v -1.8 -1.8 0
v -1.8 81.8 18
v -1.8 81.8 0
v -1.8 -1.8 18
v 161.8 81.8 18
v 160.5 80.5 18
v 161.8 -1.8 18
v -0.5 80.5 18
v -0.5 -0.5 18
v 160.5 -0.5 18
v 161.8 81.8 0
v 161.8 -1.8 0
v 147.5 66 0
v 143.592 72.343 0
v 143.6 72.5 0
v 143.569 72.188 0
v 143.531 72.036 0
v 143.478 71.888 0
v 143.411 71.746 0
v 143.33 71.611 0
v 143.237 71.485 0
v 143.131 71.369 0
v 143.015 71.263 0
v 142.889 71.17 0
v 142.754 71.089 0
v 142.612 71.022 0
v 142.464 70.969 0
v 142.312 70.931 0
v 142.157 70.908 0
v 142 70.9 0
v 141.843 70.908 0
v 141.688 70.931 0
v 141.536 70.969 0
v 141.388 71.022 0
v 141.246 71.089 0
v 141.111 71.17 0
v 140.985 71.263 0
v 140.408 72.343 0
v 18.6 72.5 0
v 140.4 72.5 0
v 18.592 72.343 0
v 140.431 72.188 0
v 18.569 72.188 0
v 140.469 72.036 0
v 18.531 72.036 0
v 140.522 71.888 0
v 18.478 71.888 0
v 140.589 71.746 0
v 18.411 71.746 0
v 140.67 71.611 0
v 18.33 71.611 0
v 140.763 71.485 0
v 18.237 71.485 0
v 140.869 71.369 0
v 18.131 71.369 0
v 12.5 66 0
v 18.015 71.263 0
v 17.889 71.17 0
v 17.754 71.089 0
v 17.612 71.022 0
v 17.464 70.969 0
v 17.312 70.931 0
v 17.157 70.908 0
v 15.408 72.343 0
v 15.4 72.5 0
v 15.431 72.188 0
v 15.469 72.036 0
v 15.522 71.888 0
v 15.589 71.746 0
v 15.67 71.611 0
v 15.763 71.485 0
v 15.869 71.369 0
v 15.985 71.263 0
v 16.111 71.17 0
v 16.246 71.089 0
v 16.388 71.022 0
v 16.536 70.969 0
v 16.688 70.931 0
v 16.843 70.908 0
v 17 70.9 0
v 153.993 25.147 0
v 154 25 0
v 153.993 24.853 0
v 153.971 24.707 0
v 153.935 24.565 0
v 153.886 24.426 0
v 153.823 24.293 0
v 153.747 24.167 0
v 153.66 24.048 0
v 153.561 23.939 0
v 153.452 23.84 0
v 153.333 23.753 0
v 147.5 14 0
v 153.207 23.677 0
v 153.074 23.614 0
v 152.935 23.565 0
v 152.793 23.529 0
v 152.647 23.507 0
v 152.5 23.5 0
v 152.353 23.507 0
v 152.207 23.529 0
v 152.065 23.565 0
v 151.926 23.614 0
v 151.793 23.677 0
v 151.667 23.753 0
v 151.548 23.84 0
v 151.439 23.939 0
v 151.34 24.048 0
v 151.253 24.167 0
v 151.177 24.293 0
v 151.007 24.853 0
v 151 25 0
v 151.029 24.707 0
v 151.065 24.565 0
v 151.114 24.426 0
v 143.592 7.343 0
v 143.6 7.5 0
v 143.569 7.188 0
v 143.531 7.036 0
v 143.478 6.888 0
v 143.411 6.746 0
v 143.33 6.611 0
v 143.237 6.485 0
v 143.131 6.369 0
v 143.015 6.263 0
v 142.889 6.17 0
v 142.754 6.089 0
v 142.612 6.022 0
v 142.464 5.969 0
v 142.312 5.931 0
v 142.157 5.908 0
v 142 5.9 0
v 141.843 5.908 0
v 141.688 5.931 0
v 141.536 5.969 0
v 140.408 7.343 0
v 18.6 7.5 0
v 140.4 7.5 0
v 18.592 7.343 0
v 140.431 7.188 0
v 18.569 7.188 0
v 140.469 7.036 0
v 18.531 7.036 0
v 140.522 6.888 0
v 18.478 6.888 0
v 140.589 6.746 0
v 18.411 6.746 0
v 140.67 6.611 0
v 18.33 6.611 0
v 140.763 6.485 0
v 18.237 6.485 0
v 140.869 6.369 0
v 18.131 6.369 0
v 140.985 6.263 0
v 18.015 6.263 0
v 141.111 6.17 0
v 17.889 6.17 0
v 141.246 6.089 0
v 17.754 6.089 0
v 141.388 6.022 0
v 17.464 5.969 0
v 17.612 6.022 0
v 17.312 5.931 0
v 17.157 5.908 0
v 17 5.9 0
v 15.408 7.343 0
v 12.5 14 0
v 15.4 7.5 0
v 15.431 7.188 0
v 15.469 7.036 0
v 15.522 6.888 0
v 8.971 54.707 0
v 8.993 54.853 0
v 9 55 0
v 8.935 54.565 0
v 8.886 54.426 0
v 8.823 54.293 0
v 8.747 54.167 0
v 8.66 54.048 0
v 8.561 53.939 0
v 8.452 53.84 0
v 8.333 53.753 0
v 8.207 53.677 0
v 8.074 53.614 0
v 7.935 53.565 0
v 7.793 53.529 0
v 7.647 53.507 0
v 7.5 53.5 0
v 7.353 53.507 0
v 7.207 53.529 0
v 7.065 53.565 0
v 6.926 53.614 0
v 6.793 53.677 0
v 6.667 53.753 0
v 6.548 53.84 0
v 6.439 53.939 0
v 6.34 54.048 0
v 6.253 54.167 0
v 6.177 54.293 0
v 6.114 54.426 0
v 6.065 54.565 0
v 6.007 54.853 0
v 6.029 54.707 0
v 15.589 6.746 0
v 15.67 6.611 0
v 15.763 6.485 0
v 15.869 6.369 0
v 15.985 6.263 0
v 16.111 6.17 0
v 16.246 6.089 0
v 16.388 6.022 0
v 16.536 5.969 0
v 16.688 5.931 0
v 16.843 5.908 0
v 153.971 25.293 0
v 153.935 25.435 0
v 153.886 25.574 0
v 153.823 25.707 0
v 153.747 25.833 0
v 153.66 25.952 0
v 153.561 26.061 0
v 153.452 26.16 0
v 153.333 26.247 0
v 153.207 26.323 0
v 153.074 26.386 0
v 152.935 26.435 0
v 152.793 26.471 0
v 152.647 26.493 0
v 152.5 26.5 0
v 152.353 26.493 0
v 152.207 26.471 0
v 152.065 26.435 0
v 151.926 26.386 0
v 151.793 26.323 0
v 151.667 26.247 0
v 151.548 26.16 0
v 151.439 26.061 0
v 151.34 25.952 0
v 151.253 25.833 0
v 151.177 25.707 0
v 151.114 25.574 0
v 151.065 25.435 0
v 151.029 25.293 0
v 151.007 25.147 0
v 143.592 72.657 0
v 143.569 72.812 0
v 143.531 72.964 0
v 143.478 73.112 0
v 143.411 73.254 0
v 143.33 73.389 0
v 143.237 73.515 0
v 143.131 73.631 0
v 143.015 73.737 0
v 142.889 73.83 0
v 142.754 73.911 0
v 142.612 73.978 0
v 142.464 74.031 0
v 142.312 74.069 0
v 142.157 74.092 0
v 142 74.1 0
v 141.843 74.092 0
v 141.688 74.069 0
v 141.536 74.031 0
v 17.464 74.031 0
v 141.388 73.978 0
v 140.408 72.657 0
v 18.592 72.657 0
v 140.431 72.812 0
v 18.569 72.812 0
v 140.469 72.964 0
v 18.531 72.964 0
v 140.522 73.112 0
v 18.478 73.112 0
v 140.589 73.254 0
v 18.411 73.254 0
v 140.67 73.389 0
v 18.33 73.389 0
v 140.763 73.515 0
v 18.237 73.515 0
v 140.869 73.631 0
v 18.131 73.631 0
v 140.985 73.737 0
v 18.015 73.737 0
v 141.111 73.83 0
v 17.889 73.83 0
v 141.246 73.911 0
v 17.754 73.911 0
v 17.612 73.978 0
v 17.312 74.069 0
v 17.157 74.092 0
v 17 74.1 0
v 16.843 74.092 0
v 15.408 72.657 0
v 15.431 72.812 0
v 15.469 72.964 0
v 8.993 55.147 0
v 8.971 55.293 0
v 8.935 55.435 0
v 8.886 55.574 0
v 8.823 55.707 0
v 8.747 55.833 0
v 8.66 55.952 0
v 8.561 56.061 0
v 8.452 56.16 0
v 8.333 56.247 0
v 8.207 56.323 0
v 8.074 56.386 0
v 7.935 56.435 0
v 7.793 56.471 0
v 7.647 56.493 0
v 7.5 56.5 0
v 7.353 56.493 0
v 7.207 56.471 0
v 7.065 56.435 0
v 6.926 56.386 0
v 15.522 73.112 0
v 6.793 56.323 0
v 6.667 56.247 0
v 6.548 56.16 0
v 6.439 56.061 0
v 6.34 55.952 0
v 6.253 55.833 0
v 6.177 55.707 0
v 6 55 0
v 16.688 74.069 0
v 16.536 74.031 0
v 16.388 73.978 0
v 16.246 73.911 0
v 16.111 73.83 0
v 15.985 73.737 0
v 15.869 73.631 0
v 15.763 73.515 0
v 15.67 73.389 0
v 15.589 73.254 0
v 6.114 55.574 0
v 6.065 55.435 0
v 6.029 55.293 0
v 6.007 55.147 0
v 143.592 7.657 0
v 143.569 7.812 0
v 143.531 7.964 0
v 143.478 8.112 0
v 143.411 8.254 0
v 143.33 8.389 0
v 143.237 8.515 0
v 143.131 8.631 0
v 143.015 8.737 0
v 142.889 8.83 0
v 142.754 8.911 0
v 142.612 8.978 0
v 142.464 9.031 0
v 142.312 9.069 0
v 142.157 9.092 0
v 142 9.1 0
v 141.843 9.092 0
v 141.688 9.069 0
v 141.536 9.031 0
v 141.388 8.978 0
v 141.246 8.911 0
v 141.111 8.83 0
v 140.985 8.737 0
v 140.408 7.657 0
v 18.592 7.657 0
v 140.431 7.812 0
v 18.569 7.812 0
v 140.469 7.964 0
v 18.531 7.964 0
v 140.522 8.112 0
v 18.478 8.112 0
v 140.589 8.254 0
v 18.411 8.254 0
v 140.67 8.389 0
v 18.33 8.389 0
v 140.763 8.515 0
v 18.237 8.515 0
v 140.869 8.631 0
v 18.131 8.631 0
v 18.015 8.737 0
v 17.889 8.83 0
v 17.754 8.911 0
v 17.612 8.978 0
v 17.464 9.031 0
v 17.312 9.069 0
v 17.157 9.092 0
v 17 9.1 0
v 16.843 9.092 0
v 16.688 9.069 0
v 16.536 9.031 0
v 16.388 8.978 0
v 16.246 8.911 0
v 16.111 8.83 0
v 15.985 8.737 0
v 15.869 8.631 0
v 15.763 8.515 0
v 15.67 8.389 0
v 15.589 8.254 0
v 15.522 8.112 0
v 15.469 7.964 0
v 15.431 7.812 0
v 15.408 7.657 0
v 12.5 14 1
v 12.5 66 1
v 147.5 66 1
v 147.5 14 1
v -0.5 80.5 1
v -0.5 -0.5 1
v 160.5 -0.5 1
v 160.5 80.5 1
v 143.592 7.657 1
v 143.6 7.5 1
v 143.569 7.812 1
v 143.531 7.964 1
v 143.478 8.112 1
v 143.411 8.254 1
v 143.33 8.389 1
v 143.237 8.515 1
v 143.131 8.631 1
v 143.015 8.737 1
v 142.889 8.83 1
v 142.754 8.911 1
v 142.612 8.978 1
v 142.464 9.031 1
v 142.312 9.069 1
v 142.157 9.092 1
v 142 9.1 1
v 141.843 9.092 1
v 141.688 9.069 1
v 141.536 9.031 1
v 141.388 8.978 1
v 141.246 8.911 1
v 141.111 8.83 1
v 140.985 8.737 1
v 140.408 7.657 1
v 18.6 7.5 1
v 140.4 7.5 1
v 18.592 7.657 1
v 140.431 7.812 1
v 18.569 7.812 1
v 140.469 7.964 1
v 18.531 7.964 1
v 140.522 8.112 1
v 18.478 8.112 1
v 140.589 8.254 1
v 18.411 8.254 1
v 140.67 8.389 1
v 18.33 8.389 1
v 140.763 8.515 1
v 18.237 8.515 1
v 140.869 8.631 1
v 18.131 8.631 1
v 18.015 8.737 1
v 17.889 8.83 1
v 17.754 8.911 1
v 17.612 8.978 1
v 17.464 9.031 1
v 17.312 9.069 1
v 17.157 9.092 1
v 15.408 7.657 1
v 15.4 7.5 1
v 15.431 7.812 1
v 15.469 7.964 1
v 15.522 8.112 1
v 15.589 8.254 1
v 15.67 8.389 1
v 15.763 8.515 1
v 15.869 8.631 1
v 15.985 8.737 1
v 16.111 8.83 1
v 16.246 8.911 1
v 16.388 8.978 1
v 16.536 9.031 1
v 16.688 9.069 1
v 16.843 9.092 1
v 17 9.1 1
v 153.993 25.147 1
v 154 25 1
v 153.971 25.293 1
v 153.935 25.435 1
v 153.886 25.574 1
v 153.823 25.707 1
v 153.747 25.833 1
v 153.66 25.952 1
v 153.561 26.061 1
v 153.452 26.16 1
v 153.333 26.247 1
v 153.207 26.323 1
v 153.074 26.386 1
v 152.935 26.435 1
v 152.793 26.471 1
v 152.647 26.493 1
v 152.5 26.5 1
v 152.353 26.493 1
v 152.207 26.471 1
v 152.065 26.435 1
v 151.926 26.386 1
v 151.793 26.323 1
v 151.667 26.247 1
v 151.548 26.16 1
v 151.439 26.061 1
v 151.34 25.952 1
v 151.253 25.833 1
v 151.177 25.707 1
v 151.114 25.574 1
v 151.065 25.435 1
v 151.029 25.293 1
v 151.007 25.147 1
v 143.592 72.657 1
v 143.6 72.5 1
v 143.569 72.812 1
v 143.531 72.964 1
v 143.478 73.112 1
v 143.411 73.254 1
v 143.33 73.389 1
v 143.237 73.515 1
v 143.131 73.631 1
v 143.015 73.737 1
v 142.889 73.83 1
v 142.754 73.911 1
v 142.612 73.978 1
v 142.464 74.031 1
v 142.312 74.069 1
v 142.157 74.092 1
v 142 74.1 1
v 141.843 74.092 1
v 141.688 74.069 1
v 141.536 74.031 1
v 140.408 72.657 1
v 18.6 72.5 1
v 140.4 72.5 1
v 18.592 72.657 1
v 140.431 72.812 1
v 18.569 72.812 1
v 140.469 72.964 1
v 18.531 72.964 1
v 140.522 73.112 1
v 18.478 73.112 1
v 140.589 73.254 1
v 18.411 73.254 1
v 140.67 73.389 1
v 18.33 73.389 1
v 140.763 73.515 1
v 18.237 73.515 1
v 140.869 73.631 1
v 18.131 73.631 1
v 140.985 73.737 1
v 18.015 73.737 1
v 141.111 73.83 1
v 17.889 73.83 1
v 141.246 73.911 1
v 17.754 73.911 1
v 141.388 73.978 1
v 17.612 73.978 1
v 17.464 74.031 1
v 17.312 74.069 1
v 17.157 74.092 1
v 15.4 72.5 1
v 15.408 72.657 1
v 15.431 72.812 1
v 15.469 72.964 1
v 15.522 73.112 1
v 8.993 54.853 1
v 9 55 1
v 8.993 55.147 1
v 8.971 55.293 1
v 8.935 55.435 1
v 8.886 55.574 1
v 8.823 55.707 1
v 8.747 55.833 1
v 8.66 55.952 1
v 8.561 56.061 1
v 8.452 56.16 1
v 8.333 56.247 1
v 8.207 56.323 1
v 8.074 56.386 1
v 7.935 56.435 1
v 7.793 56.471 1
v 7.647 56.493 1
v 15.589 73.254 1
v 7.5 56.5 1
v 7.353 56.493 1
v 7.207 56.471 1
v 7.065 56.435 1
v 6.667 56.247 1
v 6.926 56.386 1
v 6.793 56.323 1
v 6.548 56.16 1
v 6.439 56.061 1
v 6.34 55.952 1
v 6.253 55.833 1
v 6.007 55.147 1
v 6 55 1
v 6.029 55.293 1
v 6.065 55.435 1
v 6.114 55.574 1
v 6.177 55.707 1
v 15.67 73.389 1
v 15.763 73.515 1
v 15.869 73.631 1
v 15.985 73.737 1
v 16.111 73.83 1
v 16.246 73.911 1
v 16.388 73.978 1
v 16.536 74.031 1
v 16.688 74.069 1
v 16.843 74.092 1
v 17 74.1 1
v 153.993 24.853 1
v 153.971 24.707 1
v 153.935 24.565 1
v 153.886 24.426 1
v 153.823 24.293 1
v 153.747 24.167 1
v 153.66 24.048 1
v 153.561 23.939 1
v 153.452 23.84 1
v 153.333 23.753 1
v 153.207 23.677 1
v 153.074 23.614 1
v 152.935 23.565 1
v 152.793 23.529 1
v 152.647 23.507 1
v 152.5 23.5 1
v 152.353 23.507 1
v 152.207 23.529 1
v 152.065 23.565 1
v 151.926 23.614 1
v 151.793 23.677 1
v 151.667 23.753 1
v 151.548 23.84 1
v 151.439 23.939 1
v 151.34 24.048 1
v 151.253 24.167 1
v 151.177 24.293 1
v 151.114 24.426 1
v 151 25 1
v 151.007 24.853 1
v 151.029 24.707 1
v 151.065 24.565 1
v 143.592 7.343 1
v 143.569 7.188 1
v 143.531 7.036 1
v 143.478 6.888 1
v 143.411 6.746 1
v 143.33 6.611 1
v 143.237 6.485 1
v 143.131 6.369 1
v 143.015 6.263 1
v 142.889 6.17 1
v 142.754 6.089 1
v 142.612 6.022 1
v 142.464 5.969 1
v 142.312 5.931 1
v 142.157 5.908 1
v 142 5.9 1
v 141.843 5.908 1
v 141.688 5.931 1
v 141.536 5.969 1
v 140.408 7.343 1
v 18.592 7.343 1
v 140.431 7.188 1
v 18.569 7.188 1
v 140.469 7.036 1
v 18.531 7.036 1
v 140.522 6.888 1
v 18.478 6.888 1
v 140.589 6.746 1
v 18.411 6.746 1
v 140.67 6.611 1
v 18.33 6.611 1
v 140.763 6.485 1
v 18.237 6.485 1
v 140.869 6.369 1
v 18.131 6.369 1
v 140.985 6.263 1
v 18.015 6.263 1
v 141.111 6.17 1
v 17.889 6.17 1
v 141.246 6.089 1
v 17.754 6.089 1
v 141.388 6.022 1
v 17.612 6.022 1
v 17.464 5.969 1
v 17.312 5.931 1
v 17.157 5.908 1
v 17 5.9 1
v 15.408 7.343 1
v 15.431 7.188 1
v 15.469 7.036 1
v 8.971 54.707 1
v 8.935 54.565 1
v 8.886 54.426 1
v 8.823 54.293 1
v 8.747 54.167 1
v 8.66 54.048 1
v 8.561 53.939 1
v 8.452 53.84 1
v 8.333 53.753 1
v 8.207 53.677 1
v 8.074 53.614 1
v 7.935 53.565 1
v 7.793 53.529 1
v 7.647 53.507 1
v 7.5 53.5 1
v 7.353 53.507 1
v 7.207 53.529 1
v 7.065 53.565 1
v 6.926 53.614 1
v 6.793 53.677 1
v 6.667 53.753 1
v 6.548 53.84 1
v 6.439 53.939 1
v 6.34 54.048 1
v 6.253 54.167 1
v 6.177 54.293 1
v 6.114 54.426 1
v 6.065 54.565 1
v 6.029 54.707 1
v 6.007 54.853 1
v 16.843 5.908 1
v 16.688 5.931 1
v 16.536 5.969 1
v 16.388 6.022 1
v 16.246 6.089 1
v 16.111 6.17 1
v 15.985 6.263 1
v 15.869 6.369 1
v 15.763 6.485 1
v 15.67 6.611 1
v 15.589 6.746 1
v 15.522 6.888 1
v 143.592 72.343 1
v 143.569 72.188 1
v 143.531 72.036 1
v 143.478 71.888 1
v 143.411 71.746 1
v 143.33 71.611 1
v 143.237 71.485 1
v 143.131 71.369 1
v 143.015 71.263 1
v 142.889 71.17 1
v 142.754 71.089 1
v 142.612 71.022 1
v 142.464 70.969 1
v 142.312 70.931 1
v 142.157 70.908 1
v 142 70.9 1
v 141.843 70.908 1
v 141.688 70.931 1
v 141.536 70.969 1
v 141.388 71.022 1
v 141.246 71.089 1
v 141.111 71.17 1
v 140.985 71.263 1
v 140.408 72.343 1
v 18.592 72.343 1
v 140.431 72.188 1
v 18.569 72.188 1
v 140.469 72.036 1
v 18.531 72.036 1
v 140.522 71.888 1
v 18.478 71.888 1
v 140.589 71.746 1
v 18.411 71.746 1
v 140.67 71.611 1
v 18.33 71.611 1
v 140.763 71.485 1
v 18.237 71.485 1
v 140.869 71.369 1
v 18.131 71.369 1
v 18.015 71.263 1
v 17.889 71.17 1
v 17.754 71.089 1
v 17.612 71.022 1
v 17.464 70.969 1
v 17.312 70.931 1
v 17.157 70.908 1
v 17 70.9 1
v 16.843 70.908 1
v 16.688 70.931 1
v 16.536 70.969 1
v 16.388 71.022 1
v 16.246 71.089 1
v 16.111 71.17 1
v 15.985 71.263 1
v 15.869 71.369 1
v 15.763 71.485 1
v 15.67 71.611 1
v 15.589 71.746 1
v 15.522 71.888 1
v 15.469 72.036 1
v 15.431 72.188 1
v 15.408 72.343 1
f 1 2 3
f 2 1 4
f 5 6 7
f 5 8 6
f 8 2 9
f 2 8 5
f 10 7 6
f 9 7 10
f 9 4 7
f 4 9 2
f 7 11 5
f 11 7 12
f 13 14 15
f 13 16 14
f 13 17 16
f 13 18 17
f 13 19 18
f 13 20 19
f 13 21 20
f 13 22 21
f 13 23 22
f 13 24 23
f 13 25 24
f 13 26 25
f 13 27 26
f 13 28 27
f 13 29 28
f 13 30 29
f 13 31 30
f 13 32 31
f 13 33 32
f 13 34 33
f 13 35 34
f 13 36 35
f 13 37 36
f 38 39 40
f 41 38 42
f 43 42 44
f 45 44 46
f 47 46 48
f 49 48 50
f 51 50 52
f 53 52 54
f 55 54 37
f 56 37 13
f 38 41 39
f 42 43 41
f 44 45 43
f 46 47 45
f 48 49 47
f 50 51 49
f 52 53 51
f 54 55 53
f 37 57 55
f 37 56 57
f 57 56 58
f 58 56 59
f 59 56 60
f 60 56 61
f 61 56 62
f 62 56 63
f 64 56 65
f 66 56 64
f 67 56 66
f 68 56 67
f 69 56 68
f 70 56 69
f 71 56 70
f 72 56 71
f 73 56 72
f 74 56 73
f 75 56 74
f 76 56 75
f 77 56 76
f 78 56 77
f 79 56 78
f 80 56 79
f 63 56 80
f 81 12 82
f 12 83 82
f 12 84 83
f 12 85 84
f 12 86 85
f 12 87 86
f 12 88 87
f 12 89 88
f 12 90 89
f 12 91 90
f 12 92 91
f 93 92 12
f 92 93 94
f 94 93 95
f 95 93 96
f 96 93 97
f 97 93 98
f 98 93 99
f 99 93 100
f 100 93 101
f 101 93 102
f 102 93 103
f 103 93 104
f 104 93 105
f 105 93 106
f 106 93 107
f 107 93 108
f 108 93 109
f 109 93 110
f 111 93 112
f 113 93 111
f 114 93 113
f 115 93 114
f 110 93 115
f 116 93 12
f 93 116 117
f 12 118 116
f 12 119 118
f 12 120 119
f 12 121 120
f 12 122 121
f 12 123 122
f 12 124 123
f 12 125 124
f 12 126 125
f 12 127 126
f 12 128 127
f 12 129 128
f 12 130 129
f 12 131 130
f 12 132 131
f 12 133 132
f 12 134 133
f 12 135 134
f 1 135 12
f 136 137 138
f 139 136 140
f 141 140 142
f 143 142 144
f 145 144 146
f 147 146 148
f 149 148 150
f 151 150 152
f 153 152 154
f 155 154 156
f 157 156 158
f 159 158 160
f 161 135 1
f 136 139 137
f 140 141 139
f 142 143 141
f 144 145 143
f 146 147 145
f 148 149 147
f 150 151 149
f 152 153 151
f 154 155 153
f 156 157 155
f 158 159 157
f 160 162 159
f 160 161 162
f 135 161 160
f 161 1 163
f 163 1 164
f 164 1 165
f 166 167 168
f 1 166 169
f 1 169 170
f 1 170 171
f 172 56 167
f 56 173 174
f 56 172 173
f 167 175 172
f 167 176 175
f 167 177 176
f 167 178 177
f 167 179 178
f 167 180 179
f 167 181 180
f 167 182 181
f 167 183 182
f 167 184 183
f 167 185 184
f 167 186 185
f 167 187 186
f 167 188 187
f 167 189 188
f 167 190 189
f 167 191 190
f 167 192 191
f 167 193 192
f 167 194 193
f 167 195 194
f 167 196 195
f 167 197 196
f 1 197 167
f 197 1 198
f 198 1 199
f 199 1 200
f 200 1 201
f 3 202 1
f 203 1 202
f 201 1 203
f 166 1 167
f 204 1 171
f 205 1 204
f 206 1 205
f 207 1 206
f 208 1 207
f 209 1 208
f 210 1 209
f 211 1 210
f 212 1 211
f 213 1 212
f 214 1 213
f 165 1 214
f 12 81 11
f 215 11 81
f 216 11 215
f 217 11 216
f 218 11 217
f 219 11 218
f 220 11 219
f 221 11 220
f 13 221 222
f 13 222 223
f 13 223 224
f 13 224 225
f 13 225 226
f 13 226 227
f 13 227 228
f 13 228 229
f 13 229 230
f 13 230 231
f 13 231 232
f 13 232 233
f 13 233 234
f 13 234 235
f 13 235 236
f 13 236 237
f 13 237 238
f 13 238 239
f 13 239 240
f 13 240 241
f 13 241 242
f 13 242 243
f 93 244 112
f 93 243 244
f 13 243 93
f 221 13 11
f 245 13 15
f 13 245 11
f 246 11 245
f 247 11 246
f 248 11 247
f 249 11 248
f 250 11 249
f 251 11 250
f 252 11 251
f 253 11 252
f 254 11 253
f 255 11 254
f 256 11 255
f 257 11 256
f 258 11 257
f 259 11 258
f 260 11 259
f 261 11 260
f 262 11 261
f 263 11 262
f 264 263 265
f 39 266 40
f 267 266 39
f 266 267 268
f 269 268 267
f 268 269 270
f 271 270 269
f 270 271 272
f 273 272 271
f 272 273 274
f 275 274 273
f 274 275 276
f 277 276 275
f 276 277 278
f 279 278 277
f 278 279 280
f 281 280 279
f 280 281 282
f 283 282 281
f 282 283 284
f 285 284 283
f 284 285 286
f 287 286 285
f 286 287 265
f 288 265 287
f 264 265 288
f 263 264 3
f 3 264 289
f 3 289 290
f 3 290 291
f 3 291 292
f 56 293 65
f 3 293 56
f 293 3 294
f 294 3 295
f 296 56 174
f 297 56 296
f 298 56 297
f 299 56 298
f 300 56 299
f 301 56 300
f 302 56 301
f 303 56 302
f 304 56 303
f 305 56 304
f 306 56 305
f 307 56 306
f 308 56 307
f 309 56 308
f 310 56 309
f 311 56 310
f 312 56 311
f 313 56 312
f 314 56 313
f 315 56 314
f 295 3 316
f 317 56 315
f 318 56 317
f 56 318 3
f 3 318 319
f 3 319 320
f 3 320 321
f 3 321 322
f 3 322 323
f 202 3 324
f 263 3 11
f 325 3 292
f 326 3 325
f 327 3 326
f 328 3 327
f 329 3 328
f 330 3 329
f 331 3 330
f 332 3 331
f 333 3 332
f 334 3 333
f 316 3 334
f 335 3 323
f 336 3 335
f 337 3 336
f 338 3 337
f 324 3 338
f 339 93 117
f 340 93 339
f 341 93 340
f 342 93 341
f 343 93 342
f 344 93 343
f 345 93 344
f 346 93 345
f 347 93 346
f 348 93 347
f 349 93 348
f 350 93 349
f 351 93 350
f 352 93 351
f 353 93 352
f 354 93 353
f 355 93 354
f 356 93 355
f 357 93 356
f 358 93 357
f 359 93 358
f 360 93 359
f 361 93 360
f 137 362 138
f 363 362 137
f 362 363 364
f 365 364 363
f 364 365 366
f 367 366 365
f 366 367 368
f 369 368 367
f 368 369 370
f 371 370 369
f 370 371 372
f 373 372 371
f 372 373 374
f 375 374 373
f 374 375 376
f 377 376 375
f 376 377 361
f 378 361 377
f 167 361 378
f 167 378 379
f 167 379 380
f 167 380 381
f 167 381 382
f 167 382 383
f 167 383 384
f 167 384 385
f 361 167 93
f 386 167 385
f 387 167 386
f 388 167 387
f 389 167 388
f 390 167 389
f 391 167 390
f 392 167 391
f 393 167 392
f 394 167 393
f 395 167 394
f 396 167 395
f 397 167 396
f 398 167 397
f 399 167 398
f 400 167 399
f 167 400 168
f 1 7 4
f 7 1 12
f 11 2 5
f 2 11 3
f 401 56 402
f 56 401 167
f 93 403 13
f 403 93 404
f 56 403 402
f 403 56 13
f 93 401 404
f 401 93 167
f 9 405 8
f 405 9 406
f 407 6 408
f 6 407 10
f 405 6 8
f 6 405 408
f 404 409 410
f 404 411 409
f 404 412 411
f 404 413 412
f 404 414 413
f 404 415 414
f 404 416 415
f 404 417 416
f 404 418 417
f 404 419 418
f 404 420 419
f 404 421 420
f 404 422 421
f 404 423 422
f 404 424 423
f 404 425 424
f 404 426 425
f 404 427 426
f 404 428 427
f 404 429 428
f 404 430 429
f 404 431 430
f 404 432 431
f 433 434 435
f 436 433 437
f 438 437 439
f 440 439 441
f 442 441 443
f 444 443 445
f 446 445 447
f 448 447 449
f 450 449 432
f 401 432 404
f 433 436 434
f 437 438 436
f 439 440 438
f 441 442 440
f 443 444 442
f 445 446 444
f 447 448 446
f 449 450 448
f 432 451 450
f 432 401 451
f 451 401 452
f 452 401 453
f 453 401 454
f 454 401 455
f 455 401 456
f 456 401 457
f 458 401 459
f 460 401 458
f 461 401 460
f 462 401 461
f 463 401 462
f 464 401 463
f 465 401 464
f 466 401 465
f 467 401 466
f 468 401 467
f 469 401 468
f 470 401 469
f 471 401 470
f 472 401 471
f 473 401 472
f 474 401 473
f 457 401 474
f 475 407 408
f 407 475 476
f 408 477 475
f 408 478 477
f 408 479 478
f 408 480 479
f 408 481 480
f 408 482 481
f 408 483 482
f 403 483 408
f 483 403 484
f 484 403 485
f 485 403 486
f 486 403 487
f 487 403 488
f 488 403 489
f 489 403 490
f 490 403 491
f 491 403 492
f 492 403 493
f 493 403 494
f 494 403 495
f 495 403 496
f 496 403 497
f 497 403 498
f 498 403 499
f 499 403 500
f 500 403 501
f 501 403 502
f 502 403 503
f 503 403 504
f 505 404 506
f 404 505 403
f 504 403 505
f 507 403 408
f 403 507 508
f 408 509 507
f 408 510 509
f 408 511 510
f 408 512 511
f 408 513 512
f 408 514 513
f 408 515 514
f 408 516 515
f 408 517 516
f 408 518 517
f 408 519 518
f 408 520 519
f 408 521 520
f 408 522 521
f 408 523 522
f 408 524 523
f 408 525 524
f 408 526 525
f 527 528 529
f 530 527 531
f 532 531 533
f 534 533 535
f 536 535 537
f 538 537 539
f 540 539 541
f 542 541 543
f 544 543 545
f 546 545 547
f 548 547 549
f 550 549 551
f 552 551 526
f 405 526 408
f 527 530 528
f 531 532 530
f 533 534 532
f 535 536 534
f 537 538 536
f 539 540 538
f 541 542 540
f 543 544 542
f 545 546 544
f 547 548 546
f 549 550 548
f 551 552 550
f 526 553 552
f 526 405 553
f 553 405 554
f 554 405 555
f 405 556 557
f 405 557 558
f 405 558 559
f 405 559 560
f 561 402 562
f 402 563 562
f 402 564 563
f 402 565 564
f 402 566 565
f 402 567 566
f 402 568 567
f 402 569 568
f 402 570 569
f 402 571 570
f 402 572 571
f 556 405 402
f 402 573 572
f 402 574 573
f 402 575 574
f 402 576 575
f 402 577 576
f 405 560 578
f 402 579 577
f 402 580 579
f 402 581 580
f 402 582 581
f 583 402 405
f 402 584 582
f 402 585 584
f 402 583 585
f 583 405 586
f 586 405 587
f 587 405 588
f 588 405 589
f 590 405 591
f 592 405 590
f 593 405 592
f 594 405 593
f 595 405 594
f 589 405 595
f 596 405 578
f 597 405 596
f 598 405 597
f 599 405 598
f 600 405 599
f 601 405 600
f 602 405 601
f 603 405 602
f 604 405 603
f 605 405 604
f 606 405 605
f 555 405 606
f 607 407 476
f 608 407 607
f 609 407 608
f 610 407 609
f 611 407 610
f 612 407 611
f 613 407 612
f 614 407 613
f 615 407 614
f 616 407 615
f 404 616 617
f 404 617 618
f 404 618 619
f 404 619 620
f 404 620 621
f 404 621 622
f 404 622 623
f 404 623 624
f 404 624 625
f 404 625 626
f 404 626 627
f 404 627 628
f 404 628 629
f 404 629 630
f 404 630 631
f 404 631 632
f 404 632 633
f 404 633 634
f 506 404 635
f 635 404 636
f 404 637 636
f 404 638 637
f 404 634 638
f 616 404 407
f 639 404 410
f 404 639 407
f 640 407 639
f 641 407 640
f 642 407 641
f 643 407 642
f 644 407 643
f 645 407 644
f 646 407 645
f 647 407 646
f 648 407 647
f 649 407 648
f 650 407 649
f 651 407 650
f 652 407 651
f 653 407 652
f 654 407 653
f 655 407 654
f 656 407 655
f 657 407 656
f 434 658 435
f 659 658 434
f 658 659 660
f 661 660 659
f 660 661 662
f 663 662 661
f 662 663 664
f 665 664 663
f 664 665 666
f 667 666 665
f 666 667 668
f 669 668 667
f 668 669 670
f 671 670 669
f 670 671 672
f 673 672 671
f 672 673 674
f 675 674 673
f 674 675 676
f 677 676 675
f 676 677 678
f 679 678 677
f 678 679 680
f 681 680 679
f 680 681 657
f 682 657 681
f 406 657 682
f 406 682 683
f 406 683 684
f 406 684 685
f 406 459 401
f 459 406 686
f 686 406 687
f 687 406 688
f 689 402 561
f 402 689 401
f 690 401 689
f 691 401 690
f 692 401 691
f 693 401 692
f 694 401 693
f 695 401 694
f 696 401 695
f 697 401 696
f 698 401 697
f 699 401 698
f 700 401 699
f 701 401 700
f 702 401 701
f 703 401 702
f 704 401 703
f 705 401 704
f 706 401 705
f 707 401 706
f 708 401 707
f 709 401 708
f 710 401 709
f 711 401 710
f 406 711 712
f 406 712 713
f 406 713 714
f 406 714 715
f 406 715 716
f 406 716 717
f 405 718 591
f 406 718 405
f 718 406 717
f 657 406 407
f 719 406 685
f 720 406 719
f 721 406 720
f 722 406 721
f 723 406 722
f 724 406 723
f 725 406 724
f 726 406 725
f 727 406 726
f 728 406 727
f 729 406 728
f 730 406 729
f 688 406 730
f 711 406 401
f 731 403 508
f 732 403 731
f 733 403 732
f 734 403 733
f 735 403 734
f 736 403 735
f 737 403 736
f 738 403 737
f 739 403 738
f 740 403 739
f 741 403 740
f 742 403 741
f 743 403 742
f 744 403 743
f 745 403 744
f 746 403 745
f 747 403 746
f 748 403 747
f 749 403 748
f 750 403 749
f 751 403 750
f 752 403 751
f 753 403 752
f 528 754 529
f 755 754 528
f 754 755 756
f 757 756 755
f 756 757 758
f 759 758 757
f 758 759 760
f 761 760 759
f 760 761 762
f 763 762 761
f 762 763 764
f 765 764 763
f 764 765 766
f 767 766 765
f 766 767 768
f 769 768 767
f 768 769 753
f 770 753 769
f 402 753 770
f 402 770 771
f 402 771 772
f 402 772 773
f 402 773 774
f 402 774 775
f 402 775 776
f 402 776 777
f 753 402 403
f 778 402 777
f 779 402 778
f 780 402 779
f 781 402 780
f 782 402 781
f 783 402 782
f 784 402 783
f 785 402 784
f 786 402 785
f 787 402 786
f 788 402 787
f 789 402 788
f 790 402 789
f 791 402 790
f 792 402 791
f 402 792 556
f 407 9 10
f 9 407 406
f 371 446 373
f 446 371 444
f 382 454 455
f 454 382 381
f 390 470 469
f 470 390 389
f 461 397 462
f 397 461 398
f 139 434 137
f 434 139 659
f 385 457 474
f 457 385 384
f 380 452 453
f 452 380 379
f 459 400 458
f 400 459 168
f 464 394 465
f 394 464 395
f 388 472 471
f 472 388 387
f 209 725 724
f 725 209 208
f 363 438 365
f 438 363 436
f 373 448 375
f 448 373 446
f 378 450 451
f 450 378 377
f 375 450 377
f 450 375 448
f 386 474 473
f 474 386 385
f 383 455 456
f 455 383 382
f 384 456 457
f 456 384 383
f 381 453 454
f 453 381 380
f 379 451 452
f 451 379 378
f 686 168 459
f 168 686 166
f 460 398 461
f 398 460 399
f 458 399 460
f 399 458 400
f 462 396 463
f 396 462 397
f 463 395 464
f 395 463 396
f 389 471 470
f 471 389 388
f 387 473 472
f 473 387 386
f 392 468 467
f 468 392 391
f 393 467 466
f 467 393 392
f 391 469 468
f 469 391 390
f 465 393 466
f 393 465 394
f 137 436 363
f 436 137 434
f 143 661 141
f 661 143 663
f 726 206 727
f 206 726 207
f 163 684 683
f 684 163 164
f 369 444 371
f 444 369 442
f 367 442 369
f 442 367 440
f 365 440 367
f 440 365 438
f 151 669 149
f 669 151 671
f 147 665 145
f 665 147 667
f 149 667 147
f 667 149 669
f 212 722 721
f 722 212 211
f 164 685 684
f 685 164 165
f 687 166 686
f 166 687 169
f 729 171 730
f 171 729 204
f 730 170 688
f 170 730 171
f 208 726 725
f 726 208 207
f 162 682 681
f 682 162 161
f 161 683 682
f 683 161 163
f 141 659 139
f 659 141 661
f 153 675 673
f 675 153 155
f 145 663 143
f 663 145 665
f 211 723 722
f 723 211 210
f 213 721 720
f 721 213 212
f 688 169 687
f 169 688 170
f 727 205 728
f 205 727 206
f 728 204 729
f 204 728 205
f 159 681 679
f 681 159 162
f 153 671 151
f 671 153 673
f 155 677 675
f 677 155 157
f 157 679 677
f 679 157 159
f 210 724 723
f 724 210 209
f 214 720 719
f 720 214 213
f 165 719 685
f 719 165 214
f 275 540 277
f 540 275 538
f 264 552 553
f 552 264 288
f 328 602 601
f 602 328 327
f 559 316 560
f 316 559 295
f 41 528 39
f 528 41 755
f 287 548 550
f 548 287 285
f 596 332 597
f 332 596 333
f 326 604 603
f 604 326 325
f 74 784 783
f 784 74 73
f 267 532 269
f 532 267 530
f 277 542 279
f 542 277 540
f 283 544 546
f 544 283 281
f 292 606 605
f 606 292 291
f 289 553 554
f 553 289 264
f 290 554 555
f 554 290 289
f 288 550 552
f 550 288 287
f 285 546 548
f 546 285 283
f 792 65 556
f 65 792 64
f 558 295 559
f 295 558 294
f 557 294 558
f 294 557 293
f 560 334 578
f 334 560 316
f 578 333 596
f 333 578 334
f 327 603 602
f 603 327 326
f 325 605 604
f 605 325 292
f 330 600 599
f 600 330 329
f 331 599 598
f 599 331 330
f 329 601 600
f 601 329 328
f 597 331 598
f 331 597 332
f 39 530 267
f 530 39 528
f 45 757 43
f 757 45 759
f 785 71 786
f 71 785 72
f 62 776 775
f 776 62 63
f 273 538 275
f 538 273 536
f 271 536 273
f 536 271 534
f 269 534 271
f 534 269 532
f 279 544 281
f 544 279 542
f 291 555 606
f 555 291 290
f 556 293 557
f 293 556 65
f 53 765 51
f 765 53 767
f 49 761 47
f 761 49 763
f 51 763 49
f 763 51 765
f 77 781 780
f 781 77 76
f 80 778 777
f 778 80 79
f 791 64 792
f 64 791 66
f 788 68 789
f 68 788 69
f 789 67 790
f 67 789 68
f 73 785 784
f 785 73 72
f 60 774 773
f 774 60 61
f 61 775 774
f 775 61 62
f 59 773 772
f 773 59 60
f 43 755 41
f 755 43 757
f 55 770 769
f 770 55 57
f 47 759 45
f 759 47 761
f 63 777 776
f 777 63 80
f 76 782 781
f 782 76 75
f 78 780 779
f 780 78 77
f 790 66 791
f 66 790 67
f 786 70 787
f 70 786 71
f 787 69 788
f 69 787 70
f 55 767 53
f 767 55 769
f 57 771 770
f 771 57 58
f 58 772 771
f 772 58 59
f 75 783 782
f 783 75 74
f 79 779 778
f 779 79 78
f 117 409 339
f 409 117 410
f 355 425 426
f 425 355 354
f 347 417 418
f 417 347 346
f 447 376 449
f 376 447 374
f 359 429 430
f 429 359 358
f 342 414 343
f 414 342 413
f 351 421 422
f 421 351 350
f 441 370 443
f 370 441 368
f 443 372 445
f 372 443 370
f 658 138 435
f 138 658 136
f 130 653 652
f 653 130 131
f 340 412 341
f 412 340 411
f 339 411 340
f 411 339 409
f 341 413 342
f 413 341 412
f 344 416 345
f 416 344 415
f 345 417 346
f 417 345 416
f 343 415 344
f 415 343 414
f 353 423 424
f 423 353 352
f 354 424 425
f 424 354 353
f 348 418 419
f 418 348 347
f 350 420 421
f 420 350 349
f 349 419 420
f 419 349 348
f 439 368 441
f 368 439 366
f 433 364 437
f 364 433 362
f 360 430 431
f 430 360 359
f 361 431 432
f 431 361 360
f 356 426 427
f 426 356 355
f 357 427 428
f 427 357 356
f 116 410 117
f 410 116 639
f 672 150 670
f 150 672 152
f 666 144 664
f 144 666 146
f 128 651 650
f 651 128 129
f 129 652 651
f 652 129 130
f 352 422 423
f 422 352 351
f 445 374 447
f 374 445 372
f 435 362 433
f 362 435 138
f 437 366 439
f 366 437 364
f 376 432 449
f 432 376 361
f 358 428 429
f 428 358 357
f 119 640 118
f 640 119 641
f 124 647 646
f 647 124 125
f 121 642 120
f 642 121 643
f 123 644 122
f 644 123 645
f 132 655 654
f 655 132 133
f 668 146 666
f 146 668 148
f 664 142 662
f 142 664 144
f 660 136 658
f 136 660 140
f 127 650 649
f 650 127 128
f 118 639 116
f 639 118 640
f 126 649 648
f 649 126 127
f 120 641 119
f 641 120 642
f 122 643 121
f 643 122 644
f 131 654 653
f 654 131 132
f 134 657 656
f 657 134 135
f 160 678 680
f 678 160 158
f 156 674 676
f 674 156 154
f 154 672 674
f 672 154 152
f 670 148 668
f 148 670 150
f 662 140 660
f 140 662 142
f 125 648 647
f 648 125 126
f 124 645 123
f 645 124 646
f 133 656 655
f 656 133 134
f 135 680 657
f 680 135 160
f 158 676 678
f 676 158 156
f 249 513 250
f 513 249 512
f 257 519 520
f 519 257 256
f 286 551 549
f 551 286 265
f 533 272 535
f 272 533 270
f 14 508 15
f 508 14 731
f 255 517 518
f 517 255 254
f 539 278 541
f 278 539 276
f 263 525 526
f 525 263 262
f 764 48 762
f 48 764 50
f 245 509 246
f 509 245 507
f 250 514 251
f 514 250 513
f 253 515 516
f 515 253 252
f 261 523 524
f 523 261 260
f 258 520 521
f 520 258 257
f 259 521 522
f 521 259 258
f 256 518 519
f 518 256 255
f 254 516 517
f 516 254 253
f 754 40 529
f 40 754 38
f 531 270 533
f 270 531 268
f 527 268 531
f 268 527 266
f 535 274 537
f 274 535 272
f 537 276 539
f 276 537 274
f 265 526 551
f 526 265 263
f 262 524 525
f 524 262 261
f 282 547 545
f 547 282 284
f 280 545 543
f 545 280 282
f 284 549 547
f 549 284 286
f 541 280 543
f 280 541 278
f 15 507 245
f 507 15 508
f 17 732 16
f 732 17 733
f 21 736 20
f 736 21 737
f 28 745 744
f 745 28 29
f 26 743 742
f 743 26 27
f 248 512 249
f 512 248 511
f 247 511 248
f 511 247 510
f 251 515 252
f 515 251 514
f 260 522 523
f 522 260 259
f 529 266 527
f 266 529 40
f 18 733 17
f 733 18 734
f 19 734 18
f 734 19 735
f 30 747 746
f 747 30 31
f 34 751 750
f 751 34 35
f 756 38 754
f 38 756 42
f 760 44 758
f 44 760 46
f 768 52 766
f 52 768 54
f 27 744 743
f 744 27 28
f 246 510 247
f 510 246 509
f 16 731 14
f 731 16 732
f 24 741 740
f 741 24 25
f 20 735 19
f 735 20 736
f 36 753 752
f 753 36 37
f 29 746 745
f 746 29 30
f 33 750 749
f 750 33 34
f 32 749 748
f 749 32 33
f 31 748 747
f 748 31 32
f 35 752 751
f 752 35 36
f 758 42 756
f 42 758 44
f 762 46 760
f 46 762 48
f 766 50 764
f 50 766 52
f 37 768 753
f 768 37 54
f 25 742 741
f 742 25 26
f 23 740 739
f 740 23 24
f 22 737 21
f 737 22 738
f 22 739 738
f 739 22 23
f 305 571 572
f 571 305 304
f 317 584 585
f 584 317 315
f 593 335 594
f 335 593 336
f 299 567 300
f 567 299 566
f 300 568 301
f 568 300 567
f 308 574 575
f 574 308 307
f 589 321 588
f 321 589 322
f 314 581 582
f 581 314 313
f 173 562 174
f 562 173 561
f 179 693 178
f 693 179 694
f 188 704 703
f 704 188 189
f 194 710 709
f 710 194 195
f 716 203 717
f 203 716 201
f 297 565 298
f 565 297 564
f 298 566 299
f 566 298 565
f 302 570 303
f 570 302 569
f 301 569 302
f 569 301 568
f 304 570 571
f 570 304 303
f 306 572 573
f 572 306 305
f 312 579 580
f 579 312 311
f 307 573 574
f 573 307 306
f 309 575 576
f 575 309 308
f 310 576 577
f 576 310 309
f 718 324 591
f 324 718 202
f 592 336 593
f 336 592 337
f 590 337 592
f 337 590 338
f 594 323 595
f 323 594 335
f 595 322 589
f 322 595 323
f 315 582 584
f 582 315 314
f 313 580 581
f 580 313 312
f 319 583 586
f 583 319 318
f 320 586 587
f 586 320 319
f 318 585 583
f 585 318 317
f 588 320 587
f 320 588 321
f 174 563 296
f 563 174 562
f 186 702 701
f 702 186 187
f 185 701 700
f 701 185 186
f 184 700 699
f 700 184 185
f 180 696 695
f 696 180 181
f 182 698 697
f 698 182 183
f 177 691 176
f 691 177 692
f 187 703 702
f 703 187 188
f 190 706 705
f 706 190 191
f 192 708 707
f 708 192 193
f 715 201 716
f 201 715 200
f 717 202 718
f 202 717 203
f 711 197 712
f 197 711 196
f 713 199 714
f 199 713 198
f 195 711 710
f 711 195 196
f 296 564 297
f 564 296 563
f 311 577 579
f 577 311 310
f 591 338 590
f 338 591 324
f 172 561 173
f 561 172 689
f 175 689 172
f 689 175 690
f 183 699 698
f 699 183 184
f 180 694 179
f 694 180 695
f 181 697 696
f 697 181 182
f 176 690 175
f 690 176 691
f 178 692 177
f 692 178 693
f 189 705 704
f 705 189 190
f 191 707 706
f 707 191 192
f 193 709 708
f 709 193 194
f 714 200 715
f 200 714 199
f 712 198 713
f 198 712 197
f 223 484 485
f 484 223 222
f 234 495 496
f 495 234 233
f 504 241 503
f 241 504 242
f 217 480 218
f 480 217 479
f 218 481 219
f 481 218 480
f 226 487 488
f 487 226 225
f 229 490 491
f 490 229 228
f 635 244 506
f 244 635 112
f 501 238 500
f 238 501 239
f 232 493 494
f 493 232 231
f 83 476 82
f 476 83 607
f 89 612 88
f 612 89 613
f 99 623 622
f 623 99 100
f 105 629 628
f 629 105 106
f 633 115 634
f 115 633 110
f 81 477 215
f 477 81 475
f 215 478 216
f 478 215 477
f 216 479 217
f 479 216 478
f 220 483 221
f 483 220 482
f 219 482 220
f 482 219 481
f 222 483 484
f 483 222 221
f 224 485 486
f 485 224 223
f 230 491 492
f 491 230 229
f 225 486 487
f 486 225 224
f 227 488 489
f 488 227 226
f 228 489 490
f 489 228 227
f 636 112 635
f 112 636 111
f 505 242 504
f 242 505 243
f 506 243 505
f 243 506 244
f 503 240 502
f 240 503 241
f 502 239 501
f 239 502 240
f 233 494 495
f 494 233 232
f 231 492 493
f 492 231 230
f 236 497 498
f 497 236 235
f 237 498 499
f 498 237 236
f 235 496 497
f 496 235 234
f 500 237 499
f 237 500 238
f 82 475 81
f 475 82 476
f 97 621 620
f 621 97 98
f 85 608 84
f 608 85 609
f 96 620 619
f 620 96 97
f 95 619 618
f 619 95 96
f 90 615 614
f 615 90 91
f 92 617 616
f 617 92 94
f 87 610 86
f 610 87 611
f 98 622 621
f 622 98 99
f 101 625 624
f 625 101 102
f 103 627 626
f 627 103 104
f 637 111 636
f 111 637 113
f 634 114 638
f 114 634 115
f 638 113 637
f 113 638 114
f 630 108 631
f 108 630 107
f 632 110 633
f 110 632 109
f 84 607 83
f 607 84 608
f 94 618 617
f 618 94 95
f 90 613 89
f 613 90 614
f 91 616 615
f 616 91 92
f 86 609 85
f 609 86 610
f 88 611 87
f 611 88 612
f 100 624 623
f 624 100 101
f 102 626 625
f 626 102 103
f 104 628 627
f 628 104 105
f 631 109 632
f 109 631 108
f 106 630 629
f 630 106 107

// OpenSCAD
// Definition size of housing
// **************************

//display size
length =160;
width      = 80;    
backheight = 18; //30 to fit inside box

//walls
backwall = 1.8;

//corner pillars
corneroffset = 5;

//display holes
holex = 17;
holey = 7.5;
holew = 125;
holeh = 65;

//pcb holes
pcbw = 84;
pcbh = 63;
pcboffsx = 10;
pcboffsy = 1;
pcbheight      = 5; //pcb standoff

//display rear cutout
cutoutlength = 135;
cutoutwidth = 52;




//Definition of circle angular resolution
resol        = 64;           // Identical to housing !!!



difference () {
    
    union() {

    translate ([-backwall,-backwall,0]) cube([length+backwall*2,width+backwall*2,backheight]); //back
    }

    translate ([(length-cutoutlength)/2,(width-cutoutwidth)/2,0]) cube([cutoutlength,cutoutwidth,backheight+1]); //display hole
    translate ([-0.5,-0.5,1]) cube([length+1,width+1,backheight+1]); //back inside

    //display fix holes
    translate ([holex,holey,-1]) cylinder (h=backheight+2, r=1.6, $fn=resol);
    translate ([holex,holey+holeh,-1]) cylinder (h=backheight+2, r=1.6, $fn=resol);
    translate ([holex+holew,holey,-1]) cylinder (h=backheight+2, r=1.6, $fn=resol);
    translate ([holex+holew,holey+holeh,-1]) cylinder (h=backheight+2, r=1.6, $fn=resol);
    
    //plastic pips
    translate ([7.5,width-25,-1]) cylinder (h=backheight+2, r=1.5, $fn=resol);
    translate ([length-7.5,25,-1]) cylinder (h=backheight+2, r=1.5, $fn=resol);
}
